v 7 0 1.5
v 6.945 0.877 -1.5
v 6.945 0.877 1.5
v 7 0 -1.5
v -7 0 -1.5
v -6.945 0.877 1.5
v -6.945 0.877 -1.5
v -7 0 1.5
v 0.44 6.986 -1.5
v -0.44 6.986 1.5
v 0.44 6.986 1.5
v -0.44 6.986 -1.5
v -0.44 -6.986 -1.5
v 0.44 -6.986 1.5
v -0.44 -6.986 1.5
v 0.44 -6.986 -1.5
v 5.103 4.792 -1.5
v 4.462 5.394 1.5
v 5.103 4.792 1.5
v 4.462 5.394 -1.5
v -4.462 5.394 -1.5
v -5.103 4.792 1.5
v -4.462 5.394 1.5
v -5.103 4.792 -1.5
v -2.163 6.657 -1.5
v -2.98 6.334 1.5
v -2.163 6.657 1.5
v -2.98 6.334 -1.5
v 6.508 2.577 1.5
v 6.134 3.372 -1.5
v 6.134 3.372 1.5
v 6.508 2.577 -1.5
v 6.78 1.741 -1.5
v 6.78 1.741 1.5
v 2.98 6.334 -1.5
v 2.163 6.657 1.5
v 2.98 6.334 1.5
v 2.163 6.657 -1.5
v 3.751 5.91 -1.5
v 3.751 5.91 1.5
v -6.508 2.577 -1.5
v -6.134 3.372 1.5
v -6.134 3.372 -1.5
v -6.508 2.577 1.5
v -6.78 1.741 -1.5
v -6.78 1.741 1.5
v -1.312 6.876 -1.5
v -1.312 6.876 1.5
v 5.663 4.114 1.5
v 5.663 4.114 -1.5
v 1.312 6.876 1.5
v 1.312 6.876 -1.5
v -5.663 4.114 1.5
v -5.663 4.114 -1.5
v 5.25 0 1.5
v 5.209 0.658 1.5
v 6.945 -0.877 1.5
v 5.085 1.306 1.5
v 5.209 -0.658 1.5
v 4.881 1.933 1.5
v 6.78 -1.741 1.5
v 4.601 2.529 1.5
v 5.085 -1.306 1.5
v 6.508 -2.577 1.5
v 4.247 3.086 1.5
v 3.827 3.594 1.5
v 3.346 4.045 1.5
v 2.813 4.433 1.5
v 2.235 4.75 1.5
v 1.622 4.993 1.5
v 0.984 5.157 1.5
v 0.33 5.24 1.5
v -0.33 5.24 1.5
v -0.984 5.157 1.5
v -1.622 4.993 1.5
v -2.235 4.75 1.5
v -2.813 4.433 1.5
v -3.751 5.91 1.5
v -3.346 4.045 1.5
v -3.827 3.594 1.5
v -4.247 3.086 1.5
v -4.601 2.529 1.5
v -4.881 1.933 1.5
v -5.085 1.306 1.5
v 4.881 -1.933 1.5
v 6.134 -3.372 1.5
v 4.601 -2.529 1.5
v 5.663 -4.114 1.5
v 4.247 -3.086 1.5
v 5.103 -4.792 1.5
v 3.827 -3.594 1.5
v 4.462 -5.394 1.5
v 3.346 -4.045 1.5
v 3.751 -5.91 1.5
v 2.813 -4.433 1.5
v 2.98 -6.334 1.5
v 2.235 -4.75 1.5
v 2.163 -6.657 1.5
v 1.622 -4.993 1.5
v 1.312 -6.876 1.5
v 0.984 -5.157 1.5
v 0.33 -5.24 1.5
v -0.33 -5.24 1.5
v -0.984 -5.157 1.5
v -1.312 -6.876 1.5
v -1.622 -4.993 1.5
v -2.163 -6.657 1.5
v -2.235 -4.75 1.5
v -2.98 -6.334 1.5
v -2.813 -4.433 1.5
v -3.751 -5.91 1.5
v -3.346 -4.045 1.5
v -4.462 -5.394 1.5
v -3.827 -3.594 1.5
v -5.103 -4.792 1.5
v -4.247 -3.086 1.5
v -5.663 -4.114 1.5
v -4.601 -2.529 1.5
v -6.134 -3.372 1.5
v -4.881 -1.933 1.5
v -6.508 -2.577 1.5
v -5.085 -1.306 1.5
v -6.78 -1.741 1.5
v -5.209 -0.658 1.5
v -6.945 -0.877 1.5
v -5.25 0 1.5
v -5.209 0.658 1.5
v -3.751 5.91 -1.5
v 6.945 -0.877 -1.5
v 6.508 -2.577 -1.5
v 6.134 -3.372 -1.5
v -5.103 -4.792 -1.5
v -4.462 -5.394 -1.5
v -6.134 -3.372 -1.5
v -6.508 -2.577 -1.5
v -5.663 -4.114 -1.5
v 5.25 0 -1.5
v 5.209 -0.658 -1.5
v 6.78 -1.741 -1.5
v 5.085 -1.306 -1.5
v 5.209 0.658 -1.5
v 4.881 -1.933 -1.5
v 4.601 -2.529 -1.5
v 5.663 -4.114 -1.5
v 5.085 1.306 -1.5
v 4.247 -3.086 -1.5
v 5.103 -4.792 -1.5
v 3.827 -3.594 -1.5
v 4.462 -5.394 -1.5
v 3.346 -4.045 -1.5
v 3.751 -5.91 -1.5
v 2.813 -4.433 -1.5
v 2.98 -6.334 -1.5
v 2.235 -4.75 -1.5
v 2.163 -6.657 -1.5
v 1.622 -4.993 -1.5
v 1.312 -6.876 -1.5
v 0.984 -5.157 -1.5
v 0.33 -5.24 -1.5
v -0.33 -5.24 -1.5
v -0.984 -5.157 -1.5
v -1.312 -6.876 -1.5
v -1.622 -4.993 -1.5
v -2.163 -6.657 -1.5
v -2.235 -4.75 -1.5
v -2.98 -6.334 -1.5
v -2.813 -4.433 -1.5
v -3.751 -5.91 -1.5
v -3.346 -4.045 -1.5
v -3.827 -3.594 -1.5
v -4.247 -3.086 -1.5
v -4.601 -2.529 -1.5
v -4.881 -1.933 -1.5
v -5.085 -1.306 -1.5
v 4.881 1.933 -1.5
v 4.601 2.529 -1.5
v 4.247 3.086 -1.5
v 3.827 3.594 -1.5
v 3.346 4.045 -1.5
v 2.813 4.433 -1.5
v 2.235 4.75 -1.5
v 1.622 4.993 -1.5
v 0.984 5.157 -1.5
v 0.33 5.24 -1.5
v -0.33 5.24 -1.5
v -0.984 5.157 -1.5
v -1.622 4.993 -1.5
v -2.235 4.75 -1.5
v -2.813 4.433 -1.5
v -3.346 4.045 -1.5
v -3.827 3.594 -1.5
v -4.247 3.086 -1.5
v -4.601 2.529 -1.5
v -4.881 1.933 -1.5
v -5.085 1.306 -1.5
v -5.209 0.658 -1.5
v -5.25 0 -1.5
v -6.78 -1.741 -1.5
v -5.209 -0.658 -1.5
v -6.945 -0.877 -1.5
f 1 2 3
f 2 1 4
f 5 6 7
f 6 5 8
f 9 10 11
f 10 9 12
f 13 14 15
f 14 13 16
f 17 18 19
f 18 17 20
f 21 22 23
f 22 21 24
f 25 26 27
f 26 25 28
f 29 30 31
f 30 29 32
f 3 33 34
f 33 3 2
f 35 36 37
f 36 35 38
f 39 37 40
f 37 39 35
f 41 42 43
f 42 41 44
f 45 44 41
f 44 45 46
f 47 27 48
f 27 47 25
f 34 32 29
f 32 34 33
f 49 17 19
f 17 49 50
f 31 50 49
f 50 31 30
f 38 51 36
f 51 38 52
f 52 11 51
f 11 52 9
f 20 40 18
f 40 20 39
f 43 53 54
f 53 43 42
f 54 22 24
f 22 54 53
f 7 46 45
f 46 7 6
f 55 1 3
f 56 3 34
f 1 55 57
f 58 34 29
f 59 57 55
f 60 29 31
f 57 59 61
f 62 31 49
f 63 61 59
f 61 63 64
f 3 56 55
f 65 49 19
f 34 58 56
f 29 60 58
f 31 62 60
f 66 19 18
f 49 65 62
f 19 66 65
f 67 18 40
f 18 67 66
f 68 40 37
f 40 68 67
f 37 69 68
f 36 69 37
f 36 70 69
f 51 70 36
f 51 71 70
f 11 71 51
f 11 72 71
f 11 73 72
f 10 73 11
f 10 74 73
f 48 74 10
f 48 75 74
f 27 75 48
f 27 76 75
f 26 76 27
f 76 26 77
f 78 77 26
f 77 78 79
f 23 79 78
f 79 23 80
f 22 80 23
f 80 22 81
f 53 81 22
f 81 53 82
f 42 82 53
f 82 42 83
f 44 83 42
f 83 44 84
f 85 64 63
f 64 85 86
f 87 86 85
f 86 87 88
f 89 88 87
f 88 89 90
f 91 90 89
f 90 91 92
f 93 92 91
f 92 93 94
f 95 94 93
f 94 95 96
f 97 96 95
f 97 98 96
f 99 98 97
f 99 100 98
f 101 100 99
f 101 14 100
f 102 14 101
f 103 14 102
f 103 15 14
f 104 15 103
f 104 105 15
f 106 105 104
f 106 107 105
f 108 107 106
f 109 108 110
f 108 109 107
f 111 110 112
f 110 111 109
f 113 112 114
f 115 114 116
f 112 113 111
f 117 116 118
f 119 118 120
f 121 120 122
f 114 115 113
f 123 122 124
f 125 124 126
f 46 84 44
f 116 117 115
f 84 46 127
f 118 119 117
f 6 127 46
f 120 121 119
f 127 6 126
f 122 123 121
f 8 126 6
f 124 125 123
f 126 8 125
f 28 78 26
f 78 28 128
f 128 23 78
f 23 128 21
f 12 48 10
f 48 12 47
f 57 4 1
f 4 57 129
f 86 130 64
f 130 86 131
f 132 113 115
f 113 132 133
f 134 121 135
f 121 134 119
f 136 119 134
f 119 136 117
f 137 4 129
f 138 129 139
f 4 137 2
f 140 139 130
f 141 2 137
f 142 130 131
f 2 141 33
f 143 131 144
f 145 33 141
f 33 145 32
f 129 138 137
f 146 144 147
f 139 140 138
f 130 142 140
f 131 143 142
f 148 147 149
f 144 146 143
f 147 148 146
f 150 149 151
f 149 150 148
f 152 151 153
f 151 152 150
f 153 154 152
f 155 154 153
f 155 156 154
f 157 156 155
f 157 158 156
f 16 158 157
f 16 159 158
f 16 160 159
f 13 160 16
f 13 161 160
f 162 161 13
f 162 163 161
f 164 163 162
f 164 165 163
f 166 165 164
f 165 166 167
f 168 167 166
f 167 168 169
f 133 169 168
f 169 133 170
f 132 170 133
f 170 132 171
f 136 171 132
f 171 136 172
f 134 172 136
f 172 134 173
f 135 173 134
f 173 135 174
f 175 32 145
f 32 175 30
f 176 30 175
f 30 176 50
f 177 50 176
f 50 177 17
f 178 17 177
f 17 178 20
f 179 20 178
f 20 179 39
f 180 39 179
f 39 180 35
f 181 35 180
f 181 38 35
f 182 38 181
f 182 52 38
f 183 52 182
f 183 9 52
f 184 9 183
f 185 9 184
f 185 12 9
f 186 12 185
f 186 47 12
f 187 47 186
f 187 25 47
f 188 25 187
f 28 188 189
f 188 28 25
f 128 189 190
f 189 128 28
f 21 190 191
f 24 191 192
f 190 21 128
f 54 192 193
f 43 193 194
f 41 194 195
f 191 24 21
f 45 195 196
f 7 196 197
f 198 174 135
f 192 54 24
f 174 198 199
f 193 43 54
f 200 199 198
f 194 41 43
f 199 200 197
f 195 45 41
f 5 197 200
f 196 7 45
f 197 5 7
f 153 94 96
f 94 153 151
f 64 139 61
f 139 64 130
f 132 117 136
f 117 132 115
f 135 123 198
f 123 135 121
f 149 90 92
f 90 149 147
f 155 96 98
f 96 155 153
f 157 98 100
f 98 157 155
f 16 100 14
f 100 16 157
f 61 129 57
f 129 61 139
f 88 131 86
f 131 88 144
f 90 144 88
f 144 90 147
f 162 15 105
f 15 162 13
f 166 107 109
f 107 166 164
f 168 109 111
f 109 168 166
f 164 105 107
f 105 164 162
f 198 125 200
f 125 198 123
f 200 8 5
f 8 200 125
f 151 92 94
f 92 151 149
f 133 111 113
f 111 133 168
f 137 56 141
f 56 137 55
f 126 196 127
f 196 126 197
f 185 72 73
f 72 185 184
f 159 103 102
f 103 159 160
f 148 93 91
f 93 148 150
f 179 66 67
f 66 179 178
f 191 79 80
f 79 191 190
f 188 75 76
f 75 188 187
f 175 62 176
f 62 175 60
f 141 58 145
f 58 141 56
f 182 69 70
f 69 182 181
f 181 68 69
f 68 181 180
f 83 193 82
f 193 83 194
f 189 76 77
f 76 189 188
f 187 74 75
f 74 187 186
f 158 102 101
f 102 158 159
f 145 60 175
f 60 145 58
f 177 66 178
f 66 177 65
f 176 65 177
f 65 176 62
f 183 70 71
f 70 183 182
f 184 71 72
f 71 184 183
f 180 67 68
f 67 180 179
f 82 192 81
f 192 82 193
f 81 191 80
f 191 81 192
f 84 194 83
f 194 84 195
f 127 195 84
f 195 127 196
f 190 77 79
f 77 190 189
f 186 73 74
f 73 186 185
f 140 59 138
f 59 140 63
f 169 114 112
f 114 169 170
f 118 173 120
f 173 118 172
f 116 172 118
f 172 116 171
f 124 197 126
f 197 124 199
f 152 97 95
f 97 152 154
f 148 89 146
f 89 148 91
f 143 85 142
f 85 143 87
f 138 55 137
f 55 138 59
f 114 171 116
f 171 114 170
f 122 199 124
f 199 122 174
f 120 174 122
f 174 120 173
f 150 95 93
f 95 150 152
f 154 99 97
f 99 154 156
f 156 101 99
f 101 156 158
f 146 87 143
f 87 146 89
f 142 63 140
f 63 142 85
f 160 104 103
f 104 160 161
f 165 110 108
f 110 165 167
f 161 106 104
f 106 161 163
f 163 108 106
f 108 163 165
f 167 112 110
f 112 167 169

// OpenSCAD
$fn = 50;


difference() {
	union() {
		translate(v = [0, 0, -1.5000000000]) {
			cylinder(h = 3, r = 7.0000000000);
		}
	}
	union() {
		translate(v = [0, 0, -100.0000000000]) {
			cylinder(h = 200, r = 5.2500000000);
		}
	}
}
